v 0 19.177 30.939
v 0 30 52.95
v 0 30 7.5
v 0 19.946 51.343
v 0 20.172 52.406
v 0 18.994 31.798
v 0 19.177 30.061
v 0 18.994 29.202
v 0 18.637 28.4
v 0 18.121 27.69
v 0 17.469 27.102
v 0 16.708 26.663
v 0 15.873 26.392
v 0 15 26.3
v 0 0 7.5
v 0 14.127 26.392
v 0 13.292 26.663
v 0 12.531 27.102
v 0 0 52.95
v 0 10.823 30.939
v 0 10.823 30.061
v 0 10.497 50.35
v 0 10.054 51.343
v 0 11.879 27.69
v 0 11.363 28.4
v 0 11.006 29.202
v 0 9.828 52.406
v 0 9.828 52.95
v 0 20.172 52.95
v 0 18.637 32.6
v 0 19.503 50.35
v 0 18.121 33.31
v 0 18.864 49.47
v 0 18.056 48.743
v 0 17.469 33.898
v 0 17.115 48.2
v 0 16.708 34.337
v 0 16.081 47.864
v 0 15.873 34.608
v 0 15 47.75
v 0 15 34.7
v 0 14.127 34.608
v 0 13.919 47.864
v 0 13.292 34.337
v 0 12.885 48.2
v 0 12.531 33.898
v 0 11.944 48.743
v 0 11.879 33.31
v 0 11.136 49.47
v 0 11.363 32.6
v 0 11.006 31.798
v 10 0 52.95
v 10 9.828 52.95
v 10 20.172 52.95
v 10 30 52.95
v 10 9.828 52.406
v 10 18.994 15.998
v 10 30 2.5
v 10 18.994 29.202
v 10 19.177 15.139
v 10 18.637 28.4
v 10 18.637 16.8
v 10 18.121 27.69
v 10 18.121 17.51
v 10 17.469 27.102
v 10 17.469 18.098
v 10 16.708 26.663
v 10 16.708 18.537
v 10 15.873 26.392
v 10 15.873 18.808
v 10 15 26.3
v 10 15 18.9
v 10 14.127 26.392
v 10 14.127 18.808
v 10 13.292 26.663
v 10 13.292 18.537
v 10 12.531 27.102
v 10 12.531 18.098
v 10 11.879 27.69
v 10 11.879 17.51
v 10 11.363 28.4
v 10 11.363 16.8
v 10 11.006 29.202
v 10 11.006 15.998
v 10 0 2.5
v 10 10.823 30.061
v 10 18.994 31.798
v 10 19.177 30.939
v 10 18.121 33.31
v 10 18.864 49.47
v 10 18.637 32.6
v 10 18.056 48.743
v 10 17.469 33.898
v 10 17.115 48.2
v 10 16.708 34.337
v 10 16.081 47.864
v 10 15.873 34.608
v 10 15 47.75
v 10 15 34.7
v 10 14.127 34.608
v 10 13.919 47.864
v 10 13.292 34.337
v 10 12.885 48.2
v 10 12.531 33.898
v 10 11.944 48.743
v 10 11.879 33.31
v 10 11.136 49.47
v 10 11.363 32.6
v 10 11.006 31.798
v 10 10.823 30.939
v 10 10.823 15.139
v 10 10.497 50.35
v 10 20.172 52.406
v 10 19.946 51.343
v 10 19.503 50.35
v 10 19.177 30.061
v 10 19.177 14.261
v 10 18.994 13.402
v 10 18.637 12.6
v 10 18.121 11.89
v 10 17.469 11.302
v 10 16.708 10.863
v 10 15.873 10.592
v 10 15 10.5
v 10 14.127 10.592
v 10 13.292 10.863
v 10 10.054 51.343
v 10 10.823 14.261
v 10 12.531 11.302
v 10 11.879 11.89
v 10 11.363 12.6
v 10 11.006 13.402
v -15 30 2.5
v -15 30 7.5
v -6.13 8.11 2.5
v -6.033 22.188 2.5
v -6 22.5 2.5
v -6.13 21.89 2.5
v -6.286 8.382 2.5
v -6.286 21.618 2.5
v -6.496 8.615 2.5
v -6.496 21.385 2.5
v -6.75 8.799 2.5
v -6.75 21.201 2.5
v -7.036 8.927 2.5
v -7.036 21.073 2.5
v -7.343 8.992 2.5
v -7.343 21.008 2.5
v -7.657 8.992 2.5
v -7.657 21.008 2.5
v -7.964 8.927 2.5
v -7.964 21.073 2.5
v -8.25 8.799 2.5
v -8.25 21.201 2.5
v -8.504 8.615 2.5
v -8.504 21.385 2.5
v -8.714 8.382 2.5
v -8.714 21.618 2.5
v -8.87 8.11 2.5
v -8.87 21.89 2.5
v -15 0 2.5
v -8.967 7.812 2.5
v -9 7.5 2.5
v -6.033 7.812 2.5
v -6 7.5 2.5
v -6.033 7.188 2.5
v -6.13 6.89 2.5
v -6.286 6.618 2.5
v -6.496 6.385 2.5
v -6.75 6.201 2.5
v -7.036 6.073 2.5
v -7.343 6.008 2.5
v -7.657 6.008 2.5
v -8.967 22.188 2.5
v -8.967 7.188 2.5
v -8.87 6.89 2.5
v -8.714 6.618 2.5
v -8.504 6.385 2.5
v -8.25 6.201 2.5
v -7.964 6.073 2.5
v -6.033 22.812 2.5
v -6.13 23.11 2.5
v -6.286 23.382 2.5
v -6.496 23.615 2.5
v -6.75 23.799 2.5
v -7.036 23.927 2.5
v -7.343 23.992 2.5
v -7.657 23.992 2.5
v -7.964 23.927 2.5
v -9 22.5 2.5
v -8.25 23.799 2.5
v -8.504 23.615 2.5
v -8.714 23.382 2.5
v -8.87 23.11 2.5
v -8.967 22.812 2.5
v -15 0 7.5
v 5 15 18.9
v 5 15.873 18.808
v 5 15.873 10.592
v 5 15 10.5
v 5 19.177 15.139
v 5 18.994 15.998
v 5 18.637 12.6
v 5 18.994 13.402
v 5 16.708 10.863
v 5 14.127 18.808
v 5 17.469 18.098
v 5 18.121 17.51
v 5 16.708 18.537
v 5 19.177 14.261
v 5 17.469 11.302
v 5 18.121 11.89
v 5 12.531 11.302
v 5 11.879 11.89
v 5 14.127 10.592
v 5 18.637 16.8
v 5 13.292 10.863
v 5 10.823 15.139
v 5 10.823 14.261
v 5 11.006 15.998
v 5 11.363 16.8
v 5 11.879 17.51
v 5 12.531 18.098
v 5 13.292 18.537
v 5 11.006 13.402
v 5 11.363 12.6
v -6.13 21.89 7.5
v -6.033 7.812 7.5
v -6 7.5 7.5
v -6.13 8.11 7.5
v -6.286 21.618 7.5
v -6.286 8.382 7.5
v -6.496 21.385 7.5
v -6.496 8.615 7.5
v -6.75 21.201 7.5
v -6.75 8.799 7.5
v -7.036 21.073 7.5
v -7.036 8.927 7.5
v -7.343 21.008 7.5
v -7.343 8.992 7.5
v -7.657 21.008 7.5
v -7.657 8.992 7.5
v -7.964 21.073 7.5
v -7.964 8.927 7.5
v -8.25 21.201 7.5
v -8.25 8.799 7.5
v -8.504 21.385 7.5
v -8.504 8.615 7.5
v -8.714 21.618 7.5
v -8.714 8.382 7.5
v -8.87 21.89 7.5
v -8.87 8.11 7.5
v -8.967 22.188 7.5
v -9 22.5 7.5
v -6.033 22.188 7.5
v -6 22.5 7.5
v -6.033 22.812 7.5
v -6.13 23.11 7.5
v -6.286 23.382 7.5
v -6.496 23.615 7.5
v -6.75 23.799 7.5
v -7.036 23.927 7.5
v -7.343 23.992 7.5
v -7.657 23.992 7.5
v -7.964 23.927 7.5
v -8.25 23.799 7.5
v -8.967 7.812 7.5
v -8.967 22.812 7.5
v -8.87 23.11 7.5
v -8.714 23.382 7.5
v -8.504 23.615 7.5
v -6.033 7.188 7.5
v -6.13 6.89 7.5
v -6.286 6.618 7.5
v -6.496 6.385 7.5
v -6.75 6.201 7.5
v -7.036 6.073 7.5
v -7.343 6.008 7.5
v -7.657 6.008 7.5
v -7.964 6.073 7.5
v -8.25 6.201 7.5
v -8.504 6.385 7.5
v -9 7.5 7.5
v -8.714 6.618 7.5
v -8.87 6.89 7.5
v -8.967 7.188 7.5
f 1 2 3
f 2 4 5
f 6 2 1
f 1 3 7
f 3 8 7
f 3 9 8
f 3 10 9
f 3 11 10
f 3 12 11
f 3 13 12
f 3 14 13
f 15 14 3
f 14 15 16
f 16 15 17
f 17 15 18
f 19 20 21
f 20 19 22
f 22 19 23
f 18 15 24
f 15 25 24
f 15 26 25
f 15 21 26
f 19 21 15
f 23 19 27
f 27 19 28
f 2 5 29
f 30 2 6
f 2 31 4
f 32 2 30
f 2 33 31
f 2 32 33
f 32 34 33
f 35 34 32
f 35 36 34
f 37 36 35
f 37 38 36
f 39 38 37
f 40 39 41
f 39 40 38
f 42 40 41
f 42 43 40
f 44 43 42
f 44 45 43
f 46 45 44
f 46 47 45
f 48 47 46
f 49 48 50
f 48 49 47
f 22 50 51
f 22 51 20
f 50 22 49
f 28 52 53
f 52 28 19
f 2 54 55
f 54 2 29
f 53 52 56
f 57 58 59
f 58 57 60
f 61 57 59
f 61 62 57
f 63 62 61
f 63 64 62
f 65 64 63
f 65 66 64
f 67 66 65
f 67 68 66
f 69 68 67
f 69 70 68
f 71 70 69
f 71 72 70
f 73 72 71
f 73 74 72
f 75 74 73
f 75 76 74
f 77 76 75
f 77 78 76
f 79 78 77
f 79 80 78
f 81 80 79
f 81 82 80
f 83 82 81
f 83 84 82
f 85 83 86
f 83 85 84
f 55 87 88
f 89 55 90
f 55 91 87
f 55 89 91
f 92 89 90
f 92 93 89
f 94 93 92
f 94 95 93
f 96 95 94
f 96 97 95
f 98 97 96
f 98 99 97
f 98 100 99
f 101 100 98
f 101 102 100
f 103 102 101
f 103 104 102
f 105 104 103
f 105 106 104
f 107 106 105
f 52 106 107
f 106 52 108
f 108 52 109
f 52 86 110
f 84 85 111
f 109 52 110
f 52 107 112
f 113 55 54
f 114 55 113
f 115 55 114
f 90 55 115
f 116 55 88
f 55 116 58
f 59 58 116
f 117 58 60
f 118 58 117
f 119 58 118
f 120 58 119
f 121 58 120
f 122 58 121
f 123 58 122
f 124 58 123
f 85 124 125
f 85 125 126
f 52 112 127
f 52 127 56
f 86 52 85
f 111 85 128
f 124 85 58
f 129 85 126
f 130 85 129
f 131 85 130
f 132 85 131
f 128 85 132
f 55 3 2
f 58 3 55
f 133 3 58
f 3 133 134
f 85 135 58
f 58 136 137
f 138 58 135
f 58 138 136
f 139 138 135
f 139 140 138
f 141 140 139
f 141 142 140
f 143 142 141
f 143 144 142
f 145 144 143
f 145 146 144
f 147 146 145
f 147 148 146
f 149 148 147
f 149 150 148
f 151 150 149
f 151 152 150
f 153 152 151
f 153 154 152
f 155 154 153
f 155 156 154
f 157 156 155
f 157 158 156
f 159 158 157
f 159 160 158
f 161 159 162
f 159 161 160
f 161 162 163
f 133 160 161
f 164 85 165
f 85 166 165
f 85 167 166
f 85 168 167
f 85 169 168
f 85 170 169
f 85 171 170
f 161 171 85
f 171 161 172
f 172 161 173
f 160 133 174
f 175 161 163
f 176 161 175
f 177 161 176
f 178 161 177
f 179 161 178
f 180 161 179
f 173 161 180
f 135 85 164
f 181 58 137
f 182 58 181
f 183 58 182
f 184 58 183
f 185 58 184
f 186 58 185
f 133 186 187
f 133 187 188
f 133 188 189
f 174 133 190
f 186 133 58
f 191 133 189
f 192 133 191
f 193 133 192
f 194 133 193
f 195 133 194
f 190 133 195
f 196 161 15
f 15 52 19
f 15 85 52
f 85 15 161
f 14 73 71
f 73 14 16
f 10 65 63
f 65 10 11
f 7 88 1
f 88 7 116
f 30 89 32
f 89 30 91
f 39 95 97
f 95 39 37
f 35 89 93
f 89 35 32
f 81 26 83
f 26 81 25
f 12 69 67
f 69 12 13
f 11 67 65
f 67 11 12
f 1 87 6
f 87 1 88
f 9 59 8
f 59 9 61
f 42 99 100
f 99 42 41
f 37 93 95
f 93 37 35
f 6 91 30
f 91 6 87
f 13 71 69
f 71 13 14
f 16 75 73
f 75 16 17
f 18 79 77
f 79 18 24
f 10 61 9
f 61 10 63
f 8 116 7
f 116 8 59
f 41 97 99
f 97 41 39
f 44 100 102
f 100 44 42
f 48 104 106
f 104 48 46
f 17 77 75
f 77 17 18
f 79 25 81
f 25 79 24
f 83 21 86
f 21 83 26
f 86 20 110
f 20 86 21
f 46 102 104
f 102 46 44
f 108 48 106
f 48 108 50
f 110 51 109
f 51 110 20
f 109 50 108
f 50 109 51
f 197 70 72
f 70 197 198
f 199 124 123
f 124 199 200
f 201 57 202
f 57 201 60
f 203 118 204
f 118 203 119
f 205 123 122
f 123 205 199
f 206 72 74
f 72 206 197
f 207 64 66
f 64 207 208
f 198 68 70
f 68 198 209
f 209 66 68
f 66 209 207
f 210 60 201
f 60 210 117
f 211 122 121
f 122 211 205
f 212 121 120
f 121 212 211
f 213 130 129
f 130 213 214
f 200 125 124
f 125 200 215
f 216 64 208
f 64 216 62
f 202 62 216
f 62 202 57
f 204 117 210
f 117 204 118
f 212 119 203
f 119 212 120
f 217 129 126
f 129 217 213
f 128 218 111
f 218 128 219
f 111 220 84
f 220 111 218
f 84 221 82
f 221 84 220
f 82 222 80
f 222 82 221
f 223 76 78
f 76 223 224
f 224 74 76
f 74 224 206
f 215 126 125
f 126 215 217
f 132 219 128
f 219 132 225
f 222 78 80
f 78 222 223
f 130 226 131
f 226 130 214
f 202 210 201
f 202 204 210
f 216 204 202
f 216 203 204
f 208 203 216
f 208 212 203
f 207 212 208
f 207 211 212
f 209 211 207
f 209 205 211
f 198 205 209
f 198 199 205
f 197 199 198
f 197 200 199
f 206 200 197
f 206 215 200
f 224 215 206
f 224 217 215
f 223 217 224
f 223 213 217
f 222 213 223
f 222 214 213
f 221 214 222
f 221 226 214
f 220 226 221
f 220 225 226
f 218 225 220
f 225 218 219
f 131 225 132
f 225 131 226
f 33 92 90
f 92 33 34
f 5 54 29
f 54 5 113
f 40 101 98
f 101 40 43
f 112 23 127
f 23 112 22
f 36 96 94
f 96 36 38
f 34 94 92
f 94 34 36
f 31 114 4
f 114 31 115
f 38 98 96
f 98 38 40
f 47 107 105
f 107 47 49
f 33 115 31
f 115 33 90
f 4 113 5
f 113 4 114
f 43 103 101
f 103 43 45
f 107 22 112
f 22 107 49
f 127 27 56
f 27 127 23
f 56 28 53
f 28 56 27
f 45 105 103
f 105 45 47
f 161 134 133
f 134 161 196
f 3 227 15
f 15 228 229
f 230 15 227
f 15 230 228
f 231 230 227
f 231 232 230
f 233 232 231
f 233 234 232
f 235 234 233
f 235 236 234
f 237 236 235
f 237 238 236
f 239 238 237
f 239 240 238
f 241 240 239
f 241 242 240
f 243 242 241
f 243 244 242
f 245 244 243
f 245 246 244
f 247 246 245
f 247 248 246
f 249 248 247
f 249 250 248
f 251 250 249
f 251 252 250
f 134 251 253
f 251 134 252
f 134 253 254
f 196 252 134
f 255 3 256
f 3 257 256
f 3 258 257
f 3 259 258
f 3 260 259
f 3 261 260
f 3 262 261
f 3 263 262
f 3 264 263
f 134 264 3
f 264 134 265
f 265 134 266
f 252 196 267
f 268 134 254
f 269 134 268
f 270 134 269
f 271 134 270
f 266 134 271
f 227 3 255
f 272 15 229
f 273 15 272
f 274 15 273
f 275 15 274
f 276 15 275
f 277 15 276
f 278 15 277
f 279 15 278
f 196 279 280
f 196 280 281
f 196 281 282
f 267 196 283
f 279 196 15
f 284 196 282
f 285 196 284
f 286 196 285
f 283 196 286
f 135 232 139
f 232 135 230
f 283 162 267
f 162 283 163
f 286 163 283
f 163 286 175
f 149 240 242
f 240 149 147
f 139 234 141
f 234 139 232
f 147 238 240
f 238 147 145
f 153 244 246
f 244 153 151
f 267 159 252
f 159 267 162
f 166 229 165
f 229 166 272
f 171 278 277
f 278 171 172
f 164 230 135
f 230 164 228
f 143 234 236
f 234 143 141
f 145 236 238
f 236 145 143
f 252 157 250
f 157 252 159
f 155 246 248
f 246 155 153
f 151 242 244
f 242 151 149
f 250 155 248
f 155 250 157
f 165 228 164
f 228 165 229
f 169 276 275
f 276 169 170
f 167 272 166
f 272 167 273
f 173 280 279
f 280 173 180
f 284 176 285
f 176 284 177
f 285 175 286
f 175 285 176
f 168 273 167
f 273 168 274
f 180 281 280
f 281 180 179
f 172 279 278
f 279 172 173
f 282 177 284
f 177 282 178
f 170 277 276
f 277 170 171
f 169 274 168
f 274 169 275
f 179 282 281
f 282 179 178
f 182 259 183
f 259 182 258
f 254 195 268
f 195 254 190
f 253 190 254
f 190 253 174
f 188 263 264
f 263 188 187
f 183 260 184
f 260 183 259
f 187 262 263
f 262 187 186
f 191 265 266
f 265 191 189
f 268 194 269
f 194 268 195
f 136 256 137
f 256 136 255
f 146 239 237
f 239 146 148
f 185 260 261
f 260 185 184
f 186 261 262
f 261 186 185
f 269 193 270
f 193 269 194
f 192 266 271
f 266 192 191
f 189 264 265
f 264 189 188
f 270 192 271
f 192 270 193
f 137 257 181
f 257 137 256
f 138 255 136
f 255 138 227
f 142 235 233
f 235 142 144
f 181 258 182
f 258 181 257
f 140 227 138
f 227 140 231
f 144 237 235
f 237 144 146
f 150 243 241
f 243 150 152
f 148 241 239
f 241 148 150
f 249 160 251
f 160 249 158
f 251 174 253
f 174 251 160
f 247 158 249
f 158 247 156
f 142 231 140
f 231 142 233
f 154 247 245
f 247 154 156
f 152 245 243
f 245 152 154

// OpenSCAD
// file: rodMountPlunger_short.scad
include <syringePumpConstants.scad>

/* === Model-specific Constants === */

//add some clearance, we don't want this against the 8020 rails
spaceAboveFloor = 2.5;

// shrinking factor
shrink = 0.3; // this is to be subtracted to all tools beds in order to guarantee a tighter fit

//plunger
plungerDiameter = 27.5;
plungerThickness = 2.2 - shrink;
plungerInnerDiameter = 15;
plungerClipThickness = 3;
plungerWellDepth = plungerThickness + plungerClipThickness;
mink_radius = 1; // this value is used in definind the plunger bed in the cube. It is the amount of which each side of the cube will be increased due to the minkowski sum

//trap nut
nutAcross = 13.2;
nutDepth = 6.2;
nutWellDepth = nutDepth + 0.05 - shrink; //tight so it won't rattle
nutWallThicknessFront = plungerWellDepth+3;
nutWallThicknessBack = 4;

nutSlotSizeX = nutWallThicknessFront;
nutSlotSizeY = nutAcross;
nutSlotSizeZ = nutAcross/2 - 5.5; // 5.5 is a subjective decided amount to compact the design

//linear bearing 
LM8UU_dia = 15.4 - shrink;
LM8UU_length = 24;

//cube containing nut, linear bearing, and plunger
mountXSize = nutWellDepth + nutWallThicknessFront + nutWallThicknessBack;
mountZSize = syringeCenterHeight + plungerDiameter/2 + 3;

//nut
nutEdgeLength = nutAcross / (sqrt(3));
correctionFactor = 0.3;

nutCenterX = (mountXSize - nutWellDepth)/2 -floatCorrection;

finished_base();

/* === Model === */

//U-shaped hole for syringe plunger to go in
module plunger_bed(){
    
	translate([plungerClipThickness,centerY + mink_radius -plungerDiameter/2,syringeCenterHeight - plungerDiameter/2 + mink_radius]){
		plungerClip();
        } 	
	
        translate([-floatCorrection,centerY -plungerInnerDiameter/2,syringeCenterHeight - plungerInnerDiameter/2 + mink_radius]){
		plungerRod();
		}
	}

// syringe plunger clip holder
module plungerClip(){
    
     minkowski(){
			cube(size=[plungerThickness,plungerDiameter - 2*mink_radius,mountZSize]);
			rotate(a=[0,90,0]){cylinder(h=plungerThickness, r = mink_radius);
		}		
    }   
}

// opening to hold the syringe plunger
module plungerRod(){
    
     minkowski(){
			cube(size=[plungerClipThickness+floatCorrection2,plungerInnerDiameter - 2*mink_radius ,mountZSize]);
			rotate(a=[0,90,0]){cylinder(h=plungerThickness, r = mink_radius);
		}		
    }   
}

// internal bed for the nut
module nutWell(){
	//compose the outline of the 6-sided nut using 3 cubes. Yay geometry.

   rotate(a=[0,0,-30]){
	translate([-nutEdgeLength/2, -nutAcross/2, 0]){
		cube(size=[nutEdgeLength + correctionFactor,nutAcross + correctionFactor,nutWellDepth+floatCorrection2  + correctionFactor ]);
	}}

		rotate(a=[0,0,90]){
			translate([-nutEdgeLength/2, -nutAcross/2, 0]){
				cube(size=[nutEdgeLength + correctionFactor,nutAcross + correctionFactor,nutWellDepth+floatCorrection2  + correctionFactor ]);
			}
		}
	
		rotate(a=[0,0,-150]){
			translate([-nutEdgeLength/2, -nutAcross/2, 0]){
				cube(size=[nutEdgeLength + correctionFactor,nutAcross + correctionFactor,nutWellDepth+floatCorrection2  + correctionFactor ]);
			}
		}
}

// side opening to slide the nut in place
module nutSideOpening(){
    rotate([]){
        translate([]){
            cube([nutEdgeLength - 3*correctionFactor,nutAcross + 2*correctionFactor,2*nutWellDepth+floatCorrection2  + correctionFactor]);
        }
    }
}

// union of the nut bed and its side opening + the hole for the threaded rod 
module nutSideHole(){
    union(){
    //nut
	translate([nutCenterX,centerY,threadedAxisHeight]){
		rotate(a=[0,90,0]){
			nutWell();
		}
	}
    
    // side opening to slide the nut in position
    	translate([nutCenterX,2*centerY,threadedAxisHeight- (nutWellDepth+floatCorrection2  + 2*correctionFactor) ]){
		rotate(a=[90,0,0]){
			nutSideOpening();
		}
	}

	//bore hole for threaded rod
	translate([-floatCorrection,centerY,threadedAxisHeight]){
		rotate(a=[0,90,0]){
			cylinder(h=mountXSize+floatCorrection2, r=smoothRodRadius);
		}
    }
    
}
}

// ring placed internally in the LM8UU bearing bed to stop it from moving 
module LM8UUstopperRing(){
    
    ringThick = 1.5; // both thickness and difference of the radiuses
    
    difference(){
        cylinder(h=LM8UU_length - floatCorrection, r=LM8UU_dia/2);
        cylinder(h=LM8UU_length , r=(LM8UU_dia/2) - ringThick - floatCorrection);
        cylinder(h=LM8UU_length - ringThick -floatCorrection , r=(LM8UU_dia/2));
        
    }
}

// ring extruding from the LM8UU hole to hold the bearing into position. 
module LM8UUextRing(){
    
    ringThick = 3; //
    
    adj = (LM8UU_length - mountXSize - ringThick); // we want to have the bearing extruding a bit from the ring so that it's easy to remove it from it's bed
    
    difference(){
        cylinder(h=LM8UU_length-adj- floatCorrection, r=(LM8UU_dia/2) + ringThick/2);
        cylinder(h=LM8UU_length - floatCorrection, r=(LM8UU_dia/2));
        cylinder(h=LM8UU_length-adj- ringThick -floatCorrection , r=(LM8UU_dia/2) + ringThick/2);
           
            }
}

// combination of the two rings for the bearings
module bearingLM8UU(){
	difference(){
        union(){
            LM8UUstopperRing();
            translate([0,0,+LM8UU_length]){
            rotate(a=[180,0,0]){LM8UUextRing();}
            }
        }
    }
}

// this custom block is the cut in the main block between the LM8UU bearing and the threaded rod hole and it helps release the stress on the structure when the LM8UU bolt is inserted
module stressRelease(){
    cube(size=[2,7.7,mountXSize + 7]);
}

//main cube, holds the two axes
module main_cube(){
// align the rings with the mount
adj = (LM8UU_length - mountXSize);
    
difference(){
	translate([0,0,spaceAboveFloor]){
		cube(size=[mountXSize,baseSizeY,mountZSize - 5.5]);
	}
    
    // union of the nut bed and its side opening + the hole for the threaded rod 
    translate([0,0, -2.5]){nutSideHole(); }

    // hole for LM8UU
    translate([-adj + floatCorrection,centerY,         smoothAxisHeight ]){
        rotate(a=[0,90,0]){cylinder(h=LM8UU_length - floatCorrection, r=LM8UU_dia/2);}}
    	
	//U-shaped hole for syringe plunger to go in
    translate([0,0, -5.5])plunger_bed();
}
}


// union of the base and the rings to stop and guide the LM8UU in its bed
module main_cube_rings(){

    // align the rings for LM8UU with the mount
    adj = (LM8UU_length - mountXSize);

    union(){
        
        main_cube();

        // hole plus rings for LM8UU
        translate([-adj + floatCorrection,centerY,         smoothAxisHeight]){
            rotate(a=[0,90,0]){
                bearingLM8UU();
            }
        }
    }
}



module finished_base(){
    
    // add the rectangular hole in between the LM8UU and the threaded rod bed
        difference(){
           main_cube_rings();
           
           translate([nutCenterX - 12,centerY-1.0,threadedAxisHeight - 14]){
        rotate(a=[90,0,90]){
            stressRelease();
        }
    }
}
}
// file: syringePumpConstants.scad
/* === Project-universal Constants === */

//Not all of these variables are used in this specific model,
//but the same variable set is used across all models in this project.

$fs = 0.1;

inch = 25.4; //for mm conversion

//width of base

// 8020 profile is 1 inch wide
//baseSizeY = 2*inch;
//screwPlateSize = 25;	
//screwRadius = 3.5;

// OpenBeam is 15mm wide
baseSizeY = 2*15;
screwPlateSize = 15;	
screwRadius = 1.5;

centerY = baseSizeY / 2; //both axes go right down the middle of the base

//stepper motor
stepperZSize = 42;
stepperYSize = 42;

//608 bearing 
bearing608Height = 8.5;
bearing608Diameter = 22.5;

//height of holder for 80/20 screws
mountPlateHeight = 5;

//axis heights
threadedAxisHeight = stepperZSize/2 + mountPlateHeight + 4;
echo("threadedAxisHeight ", threadedAxisHeight);
smoothAxisHeight = (threadedAxisHeight-6.6) / 2;
smoothRodRadius = 4.2;

//syringe properties
//barrelDiameter = 25;
//
//barrelSlotThickness = 3;
//barrelSlotHeight = 28;

// 20ml BD plastic disposable syringe REF 302830
barrelDiameter = 21.4;
barrelSlotThickness = 3;
barrelSlotHeight = 28;

syringeCenterHeight = threadedAxisHeight + bearing608Diameter/2 + 4 + barrelDiameter/2;

//fixes render oddities
floatCorrection = 0.001; 
floatCorrection2 = 2*floatCorrection; 
// main file
include <syringePumpConstants.scad>
use <rodMountPlunger_short.scad>

/* === Model-specific Constants === */
//add some clearance, we don't want this against the 8020 rails
spaceAboveFloor = 2.5;

//cube containing rods and syringe barrel stop
mountXSize = 10;
mountZSize = syringeCenterHeight;

/* === Model === */


module bearing608(){
	cylinder(h=bearing608Height, r=bearing608Diameter/2);	
}

//main cube, holds the two axes
module main_cube(){
    difference(){
        cube(size=[mountXSize,baseSizeY,mountZSize - 5.5]);
        
        //bore hole for threaded rod
        translate([-floatCorrection,centerY,threadedAxisHeight - 2]){
            rotate(a=[0,90,0]){ 
                cylinder(h=mountXSize+floatCorrection2, r=smoothRodRadius);
            }
        }

        //hole for smooth rod (needs to fit fairly tight)
        translate([-floatCorrection + mountXSize +floatCorrection2,centerY,smoothAxisHeight + 0.5]){
            rotate(a=[0,270,0]){
                cylinder(h=(mountXSize+floatCorrection2)/2, r=smoothRodRadius);
            }
        }
        
        //hole for syringe barrel stopper
        translate([-floatCorrection,centerY,syringeCenterHeight - 5.5]){
            rotate(a=[0,90,0]){
                cylinder(h=mountXSize+floatCorrection2, r=5.2);
            }
        }
    }
}

    module horizontal_cube(){
    difference(){
        translate([-screwPlateSize,0,0]){
            cube(size=[screwPlateSize,baseSizeY,mountPlateHeight]);
        }

        translate([-screwPlateSize/2,baseSizeY/4,0]){
            cylinder(h=mountPlateHeight, r=screwRadius);
        }
        translate([-screwPlateSize/2,3*baseSizeY/4,0]){
            cylinder(h=mountPlateHeight, r=screwRadius);
        }

    }
}

module finished_base(){
    union(){
        main_cube();
        horizontal_cube();
    }
}

translate([0,0,spaceAboveFloor]){
finished_base();
}
